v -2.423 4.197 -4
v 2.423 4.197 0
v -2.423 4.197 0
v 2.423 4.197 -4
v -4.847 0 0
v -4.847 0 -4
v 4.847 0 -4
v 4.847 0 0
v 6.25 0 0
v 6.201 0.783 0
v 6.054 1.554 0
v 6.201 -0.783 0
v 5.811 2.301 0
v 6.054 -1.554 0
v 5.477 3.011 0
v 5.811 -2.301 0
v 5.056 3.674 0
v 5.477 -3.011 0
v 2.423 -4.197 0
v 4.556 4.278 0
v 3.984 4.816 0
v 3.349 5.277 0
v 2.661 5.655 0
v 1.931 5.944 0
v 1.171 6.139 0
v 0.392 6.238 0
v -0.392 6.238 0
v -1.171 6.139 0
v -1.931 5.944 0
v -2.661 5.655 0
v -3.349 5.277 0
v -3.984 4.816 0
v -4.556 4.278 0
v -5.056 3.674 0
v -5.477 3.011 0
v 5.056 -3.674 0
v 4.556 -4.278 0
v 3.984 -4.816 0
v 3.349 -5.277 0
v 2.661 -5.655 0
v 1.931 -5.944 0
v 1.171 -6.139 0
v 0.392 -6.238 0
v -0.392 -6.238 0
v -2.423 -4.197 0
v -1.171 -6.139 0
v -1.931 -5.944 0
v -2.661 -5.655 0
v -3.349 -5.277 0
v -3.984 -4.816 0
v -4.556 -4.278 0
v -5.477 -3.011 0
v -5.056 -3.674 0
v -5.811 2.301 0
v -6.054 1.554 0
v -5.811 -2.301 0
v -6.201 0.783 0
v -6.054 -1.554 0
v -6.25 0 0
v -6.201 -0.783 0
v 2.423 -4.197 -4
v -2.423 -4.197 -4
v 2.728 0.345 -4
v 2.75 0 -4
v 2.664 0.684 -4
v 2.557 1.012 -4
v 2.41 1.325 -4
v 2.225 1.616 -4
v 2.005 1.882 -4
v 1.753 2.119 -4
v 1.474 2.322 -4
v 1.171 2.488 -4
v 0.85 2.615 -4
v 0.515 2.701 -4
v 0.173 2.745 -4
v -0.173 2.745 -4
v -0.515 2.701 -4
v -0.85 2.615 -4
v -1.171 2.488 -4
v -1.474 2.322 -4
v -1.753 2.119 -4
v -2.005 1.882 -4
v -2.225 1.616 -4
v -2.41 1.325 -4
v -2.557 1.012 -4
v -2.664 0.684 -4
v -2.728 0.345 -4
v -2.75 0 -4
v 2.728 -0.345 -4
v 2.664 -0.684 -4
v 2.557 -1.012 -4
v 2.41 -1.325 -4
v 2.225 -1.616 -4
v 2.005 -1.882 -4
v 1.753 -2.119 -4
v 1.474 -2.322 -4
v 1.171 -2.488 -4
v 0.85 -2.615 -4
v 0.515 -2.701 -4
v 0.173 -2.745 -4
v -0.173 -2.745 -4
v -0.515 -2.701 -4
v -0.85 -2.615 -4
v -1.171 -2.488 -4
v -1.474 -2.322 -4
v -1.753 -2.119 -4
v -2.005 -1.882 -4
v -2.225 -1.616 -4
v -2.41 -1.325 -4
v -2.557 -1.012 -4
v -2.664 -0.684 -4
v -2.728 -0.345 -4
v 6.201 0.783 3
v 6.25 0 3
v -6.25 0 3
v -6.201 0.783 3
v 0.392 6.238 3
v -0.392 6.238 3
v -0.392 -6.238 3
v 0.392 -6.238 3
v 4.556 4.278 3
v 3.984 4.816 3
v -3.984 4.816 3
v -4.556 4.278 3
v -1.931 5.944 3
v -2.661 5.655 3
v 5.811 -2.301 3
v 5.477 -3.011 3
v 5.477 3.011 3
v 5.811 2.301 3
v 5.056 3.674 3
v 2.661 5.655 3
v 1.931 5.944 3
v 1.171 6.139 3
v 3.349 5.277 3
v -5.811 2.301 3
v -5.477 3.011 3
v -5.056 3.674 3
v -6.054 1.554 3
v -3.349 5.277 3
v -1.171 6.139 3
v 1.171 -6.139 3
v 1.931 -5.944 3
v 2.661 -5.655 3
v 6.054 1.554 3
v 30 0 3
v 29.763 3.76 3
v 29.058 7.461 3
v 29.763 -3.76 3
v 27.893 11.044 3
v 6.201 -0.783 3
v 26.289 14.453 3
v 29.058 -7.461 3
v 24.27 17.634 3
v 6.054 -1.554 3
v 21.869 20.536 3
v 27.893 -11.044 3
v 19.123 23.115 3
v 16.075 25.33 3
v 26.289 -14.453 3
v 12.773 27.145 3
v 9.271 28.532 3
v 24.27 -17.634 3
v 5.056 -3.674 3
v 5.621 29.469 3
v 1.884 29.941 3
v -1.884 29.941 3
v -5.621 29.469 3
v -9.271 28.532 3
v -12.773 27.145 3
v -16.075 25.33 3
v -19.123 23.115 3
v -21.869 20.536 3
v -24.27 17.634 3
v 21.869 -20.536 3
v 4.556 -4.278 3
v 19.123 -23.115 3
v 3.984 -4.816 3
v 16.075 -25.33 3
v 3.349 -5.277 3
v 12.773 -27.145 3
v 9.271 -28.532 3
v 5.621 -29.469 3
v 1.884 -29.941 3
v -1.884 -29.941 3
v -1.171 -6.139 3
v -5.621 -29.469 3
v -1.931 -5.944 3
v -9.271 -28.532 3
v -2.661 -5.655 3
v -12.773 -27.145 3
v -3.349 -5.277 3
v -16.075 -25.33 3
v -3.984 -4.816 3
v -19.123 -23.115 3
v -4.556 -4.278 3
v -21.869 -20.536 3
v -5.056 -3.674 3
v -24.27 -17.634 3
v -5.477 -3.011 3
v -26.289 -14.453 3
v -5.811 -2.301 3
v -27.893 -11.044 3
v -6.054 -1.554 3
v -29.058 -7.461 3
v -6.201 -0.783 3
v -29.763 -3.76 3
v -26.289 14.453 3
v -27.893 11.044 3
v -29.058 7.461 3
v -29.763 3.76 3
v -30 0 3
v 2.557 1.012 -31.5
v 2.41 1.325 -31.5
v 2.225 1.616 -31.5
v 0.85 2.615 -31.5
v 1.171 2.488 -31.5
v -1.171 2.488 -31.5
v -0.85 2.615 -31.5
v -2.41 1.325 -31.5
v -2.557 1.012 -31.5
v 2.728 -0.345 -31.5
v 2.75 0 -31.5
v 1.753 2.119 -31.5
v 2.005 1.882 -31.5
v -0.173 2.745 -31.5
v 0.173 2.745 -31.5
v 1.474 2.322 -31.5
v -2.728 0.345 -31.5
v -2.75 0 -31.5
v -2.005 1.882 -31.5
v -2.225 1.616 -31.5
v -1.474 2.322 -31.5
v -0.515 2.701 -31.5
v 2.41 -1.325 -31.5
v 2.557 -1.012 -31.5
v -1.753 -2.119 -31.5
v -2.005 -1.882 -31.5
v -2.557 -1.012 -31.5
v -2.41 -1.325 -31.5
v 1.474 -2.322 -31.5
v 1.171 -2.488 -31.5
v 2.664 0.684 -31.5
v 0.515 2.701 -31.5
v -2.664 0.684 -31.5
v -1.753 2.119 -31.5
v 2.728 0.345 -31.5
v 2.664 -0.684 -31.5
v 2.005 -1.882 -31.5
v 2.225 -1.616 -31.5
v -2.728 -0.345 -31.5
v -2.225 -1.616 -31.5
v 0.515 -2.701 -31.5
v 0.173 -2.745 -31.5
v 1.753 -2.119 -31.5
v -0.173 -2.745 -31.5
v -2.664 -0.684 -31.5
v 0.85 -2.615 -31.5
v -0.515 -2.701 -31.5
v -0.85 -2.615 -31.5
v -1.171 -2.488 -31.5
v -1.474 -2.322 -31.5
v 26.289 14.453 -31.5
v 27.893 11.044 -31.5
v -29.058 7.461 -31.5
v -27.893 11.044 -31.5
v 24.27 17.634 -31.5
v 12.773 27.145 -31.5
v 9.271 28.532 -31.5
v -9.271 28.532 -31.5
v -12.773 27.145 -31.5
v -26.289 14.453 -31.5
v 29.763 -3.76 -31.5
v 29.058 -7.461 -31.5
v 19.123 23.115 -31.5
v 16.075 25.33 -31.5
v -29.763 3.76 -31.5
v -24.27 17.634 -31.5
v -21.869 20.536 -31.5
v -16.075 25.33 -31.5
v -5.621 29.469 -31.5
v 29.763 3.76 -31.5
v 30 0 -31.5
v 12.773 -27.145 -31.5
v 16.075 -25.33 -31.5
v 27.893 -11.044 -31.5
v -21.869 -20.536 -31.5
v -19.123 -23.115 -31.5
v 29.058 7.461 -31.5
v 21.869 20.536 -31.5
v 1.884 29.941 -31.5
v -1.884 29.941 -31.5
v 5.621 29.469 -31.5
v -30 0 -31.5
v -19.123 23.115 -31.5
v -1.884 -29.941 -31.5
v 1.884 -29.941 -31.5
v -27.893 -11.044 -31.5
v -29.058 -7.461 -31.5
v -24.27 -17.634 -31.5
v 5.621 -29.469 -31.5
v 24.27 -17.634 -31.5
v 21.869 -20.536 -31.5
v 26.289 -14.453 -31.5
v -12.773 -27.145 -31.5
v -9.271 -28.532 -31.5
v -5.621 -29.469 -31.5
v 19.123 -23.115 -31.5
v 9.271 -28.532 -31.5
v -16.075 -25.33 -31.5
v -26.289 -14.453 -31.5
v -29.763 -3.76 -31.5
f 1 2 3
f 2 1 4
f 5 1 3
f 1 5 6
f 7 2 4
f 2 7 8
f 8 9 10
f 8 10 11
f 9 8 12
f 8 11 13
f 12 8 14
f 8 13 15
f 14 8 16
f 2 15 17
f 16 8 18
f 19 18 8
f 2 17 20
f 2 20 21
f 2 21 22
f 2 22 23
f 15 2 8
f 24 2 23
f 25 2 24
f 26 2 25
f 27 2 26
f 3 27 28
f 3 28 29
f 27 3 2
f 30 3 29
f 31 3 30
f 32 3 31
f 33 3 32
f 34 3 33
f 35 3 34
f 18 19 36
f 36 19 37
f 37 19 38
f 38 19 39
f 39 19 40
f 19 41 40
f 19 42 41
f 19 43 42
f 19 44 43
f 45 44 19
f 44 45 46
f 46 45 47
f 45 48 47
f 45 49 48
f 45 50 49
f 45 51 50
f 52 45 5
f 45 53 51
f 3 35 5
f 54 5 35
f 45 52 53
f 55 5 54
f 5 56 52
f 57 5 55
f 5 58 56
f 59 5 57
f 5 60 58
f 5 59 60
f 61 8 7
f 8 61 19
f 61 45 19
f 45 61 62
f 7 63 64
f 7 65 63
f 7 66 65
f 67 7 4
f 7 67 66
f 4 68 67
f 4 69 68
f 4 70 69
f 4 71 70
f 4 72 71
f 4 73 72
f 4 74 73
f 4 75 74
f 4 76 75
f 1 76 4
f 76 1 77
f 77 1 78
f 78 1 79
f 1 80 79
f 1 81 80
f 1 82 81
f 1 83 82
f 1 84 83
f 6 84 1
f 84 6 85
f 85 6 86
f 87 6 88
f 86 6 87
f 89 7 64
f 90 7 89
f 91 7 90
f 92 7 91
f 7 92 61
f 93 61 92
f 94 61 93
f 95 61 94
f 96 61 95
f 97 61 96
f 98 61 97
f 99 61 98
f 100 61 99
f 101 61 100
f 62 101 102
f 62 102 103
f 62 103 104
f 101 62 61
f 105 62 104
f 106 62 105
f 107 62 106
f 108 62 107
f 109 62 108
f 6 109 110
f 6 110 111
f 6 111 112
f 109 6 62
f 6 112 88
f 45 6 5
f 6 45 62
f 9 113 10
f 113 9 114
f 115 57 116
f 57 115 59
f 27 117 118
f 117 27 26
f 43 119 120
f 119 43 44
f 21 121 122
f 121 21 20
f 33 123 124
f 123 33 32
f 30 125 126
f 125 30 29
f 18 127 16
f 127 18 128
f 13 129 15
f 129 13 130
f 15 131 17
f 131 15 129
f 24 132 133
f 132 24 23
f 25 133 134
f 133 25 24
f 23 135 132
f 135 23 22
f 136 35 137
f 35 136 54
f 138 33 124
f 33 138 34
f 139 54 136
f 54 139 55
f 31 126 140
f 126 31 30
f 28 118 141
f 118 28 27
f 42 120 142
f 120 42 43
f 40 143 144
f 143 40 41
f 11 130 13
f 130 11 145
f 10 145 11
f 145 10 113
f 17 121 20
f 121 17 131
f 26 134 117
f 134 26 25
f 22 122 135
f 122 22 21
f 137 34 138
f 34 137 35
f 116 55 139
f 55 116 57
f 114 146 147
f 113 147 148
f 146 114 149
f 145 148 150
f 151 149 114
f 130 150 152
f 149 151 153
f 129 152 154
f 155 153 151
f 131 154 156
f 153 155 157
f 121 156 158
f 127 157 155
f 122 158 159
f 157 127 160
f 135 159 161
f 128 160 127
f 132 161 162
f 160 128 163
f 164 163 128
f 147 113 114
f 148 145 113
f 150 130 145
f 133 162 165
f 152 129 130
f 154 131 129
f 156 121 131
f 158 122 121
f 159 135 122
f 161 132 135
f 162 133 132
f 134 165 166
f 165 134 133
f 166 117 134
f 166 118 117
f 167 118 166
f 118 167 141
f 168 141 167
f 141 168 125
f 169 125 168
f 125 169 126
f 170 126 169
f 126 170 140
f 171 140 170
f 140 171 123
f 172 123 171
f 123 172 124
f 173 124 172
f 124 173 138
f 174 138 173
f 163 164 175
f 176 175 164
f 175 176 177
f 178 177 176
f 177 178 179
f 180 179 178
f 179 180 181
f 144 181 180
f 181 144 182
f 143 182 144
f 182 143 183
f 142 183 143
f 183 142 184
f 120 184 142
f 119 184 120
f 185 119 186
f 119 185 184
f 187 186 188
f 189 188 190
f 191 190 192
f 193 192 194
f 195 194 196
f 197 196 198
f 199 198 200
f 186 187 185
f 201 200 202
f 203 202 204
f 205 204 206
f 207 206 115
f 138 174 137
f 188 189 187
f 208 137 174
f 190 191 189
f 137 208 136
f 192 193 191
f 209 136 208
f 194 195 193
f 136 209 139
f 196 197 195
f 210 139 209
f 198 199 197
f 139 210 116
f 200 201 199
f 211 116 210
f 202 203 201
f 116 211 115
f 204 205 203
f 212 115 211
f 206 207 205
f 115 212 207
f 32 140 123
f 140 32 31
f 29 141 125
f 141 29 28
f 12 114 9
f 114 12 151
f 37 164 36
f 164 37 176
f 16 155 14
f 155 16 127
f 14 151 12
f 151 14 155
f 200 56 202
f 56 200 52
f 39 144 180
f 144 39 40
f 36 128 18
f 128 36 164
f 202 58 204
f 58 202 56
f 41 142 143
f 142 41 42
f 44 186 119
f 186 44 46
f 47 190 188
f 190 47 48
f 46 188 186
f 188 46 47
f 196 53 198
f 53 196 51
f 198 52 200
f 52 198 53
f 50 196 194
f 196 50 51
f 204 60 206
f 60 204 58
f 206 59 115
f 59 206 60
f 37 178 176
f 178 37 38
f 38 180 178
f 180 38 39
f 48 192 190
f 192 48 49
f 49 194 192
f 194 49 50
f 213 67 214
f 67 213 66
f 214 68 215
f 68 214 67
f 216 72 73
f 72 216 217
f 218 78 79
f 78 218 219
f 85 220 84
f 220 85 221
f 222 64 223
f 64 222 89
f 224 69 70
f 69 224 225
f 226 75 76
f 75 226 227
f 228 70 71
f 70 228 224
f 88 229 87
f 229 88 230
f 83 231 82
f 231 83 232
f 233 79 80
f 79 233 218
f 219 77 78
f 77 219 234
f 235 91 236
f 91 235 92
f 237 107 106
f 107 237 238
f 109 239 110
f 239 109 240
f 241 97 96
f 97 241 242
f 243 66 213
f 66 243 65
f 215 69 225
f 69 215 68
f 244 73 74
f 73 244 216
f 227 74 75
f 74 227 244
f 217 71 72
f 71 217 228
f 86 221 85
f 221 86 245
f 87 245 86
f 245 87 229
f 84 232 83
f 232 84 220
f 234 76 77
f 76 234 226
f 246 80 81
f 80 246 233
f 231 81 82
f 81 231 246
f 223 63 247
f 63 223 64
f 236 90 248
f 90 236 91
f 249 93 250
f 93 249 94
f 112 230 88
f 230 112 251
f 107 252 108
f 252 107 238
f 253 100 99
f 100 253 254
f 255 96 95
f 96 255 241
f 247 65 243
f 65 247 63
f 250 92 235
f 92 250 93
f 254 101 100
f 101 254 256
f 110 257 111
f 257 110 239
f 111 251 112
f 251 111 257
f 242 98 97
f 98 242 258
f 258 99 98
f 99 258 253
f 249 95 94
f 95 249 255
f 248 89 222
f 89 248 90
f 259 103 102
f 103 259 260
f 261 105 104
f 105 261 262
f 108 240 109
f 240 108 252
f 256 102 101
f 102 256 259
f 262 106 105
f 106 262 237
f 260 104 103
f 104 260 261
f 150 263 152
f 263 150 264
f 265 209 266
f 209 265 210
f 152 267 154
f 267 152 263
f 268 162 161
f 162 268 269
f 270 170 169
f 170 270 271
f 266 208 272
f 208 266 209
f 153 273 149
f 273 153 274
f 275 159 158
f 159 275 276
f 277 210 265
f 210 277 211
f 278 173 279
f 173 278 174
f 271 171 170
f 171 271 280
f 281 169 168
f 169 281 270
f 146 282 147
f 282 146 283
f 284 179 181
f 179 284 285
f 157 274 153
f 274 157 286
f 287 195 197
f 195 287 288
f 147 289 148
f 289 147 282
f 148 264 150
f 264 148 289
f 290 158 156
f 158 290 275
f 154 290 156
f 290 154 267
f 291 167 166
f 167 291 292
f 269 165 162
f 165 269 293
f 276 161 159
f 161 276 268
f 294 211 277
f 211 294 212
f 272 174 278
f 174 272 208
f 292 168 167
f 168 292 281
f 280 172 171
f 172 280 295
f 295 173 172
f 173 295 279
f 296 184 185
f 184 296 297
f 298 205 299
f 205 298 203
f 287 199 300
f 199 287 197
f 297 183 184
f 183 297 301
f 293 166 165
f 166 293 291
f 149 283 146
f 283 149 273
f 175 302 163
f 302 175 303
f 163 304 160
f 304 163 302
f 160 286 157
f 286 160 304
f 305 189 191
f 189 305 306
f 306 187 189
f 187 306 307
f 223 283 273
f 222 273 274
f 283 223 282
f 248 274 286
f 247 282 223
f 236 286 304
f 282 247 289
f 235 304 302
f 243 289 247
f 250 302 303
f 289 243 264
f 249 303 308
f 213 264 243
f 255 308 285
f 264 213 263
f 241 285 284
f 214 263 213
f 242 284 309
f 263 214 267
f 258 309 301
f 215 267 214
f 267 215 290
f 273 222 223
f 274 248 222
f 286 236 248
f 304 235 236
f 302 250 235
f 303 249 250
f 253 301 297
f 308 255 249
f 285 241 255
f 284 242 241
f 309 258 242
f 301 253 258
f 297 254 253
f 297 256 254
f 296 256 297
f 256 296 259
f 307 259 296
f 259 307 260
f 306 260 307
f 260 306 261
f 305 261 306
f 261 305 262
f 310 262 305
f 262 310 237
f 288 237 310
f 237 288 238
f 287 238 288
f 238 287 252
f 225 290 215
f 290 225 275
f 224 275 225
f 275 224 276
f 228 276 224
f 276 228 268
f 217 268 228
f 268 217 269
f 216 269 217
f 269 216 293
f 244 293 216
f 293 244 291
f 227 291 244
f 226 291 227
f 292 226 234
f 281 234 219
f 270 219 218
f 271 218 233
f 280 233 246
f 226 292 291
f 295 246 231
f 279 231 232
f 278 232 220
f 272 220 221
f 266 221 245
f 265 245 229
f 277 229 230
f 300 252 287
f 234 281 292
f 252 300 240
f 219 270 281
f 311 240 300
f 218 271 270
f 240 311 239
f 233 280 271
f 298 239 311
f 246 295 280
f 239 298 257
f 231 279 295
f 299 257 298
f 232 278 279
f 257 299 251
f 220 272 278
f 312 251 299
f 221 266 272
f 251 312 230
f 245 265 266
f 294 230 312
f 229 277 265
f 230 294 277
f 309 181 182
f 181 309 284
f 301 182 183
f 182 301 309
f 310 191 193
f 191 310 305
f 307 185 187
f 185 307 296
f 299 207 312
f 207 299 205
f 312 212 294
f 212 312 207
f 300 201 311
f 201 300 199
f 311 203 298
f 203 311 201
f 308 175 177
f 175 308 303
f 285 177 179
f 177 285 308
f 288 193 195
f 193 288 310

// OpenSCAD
$fn = 50;

difference() {
	union() {
		translate(v = [0, 0, -31.5]) {
			cylinder(h = 34.5, r = 30.0);
		}
	}
	union() {
		translate(v = [0, 0, 0]) {
			rotate(a = [0, 0, 0]) {
				difference() {
					union() {
						translate(v = [0, 0, -4]) {
							linear_extrude(height = 4) {
								polygon(points = [[4.8468, 0.0], [2.4234000000000004, 4.197451927062417], [-2.423399999999999, 4.197451927062417], [-4.8468, 5.935618106107392e-16], [-2.423400000000002, -4.197451927062416], [2.423399999999997, -4.197451927062419]]);
							}
						}
					}
					union();
				}
			}
		}
		#cylinder(h = 3, r = 6.25);
		#translate(v = [0, 0, -100.0]) {
			cylinder(h = 200, r = 2.75);
		}
	}
}
